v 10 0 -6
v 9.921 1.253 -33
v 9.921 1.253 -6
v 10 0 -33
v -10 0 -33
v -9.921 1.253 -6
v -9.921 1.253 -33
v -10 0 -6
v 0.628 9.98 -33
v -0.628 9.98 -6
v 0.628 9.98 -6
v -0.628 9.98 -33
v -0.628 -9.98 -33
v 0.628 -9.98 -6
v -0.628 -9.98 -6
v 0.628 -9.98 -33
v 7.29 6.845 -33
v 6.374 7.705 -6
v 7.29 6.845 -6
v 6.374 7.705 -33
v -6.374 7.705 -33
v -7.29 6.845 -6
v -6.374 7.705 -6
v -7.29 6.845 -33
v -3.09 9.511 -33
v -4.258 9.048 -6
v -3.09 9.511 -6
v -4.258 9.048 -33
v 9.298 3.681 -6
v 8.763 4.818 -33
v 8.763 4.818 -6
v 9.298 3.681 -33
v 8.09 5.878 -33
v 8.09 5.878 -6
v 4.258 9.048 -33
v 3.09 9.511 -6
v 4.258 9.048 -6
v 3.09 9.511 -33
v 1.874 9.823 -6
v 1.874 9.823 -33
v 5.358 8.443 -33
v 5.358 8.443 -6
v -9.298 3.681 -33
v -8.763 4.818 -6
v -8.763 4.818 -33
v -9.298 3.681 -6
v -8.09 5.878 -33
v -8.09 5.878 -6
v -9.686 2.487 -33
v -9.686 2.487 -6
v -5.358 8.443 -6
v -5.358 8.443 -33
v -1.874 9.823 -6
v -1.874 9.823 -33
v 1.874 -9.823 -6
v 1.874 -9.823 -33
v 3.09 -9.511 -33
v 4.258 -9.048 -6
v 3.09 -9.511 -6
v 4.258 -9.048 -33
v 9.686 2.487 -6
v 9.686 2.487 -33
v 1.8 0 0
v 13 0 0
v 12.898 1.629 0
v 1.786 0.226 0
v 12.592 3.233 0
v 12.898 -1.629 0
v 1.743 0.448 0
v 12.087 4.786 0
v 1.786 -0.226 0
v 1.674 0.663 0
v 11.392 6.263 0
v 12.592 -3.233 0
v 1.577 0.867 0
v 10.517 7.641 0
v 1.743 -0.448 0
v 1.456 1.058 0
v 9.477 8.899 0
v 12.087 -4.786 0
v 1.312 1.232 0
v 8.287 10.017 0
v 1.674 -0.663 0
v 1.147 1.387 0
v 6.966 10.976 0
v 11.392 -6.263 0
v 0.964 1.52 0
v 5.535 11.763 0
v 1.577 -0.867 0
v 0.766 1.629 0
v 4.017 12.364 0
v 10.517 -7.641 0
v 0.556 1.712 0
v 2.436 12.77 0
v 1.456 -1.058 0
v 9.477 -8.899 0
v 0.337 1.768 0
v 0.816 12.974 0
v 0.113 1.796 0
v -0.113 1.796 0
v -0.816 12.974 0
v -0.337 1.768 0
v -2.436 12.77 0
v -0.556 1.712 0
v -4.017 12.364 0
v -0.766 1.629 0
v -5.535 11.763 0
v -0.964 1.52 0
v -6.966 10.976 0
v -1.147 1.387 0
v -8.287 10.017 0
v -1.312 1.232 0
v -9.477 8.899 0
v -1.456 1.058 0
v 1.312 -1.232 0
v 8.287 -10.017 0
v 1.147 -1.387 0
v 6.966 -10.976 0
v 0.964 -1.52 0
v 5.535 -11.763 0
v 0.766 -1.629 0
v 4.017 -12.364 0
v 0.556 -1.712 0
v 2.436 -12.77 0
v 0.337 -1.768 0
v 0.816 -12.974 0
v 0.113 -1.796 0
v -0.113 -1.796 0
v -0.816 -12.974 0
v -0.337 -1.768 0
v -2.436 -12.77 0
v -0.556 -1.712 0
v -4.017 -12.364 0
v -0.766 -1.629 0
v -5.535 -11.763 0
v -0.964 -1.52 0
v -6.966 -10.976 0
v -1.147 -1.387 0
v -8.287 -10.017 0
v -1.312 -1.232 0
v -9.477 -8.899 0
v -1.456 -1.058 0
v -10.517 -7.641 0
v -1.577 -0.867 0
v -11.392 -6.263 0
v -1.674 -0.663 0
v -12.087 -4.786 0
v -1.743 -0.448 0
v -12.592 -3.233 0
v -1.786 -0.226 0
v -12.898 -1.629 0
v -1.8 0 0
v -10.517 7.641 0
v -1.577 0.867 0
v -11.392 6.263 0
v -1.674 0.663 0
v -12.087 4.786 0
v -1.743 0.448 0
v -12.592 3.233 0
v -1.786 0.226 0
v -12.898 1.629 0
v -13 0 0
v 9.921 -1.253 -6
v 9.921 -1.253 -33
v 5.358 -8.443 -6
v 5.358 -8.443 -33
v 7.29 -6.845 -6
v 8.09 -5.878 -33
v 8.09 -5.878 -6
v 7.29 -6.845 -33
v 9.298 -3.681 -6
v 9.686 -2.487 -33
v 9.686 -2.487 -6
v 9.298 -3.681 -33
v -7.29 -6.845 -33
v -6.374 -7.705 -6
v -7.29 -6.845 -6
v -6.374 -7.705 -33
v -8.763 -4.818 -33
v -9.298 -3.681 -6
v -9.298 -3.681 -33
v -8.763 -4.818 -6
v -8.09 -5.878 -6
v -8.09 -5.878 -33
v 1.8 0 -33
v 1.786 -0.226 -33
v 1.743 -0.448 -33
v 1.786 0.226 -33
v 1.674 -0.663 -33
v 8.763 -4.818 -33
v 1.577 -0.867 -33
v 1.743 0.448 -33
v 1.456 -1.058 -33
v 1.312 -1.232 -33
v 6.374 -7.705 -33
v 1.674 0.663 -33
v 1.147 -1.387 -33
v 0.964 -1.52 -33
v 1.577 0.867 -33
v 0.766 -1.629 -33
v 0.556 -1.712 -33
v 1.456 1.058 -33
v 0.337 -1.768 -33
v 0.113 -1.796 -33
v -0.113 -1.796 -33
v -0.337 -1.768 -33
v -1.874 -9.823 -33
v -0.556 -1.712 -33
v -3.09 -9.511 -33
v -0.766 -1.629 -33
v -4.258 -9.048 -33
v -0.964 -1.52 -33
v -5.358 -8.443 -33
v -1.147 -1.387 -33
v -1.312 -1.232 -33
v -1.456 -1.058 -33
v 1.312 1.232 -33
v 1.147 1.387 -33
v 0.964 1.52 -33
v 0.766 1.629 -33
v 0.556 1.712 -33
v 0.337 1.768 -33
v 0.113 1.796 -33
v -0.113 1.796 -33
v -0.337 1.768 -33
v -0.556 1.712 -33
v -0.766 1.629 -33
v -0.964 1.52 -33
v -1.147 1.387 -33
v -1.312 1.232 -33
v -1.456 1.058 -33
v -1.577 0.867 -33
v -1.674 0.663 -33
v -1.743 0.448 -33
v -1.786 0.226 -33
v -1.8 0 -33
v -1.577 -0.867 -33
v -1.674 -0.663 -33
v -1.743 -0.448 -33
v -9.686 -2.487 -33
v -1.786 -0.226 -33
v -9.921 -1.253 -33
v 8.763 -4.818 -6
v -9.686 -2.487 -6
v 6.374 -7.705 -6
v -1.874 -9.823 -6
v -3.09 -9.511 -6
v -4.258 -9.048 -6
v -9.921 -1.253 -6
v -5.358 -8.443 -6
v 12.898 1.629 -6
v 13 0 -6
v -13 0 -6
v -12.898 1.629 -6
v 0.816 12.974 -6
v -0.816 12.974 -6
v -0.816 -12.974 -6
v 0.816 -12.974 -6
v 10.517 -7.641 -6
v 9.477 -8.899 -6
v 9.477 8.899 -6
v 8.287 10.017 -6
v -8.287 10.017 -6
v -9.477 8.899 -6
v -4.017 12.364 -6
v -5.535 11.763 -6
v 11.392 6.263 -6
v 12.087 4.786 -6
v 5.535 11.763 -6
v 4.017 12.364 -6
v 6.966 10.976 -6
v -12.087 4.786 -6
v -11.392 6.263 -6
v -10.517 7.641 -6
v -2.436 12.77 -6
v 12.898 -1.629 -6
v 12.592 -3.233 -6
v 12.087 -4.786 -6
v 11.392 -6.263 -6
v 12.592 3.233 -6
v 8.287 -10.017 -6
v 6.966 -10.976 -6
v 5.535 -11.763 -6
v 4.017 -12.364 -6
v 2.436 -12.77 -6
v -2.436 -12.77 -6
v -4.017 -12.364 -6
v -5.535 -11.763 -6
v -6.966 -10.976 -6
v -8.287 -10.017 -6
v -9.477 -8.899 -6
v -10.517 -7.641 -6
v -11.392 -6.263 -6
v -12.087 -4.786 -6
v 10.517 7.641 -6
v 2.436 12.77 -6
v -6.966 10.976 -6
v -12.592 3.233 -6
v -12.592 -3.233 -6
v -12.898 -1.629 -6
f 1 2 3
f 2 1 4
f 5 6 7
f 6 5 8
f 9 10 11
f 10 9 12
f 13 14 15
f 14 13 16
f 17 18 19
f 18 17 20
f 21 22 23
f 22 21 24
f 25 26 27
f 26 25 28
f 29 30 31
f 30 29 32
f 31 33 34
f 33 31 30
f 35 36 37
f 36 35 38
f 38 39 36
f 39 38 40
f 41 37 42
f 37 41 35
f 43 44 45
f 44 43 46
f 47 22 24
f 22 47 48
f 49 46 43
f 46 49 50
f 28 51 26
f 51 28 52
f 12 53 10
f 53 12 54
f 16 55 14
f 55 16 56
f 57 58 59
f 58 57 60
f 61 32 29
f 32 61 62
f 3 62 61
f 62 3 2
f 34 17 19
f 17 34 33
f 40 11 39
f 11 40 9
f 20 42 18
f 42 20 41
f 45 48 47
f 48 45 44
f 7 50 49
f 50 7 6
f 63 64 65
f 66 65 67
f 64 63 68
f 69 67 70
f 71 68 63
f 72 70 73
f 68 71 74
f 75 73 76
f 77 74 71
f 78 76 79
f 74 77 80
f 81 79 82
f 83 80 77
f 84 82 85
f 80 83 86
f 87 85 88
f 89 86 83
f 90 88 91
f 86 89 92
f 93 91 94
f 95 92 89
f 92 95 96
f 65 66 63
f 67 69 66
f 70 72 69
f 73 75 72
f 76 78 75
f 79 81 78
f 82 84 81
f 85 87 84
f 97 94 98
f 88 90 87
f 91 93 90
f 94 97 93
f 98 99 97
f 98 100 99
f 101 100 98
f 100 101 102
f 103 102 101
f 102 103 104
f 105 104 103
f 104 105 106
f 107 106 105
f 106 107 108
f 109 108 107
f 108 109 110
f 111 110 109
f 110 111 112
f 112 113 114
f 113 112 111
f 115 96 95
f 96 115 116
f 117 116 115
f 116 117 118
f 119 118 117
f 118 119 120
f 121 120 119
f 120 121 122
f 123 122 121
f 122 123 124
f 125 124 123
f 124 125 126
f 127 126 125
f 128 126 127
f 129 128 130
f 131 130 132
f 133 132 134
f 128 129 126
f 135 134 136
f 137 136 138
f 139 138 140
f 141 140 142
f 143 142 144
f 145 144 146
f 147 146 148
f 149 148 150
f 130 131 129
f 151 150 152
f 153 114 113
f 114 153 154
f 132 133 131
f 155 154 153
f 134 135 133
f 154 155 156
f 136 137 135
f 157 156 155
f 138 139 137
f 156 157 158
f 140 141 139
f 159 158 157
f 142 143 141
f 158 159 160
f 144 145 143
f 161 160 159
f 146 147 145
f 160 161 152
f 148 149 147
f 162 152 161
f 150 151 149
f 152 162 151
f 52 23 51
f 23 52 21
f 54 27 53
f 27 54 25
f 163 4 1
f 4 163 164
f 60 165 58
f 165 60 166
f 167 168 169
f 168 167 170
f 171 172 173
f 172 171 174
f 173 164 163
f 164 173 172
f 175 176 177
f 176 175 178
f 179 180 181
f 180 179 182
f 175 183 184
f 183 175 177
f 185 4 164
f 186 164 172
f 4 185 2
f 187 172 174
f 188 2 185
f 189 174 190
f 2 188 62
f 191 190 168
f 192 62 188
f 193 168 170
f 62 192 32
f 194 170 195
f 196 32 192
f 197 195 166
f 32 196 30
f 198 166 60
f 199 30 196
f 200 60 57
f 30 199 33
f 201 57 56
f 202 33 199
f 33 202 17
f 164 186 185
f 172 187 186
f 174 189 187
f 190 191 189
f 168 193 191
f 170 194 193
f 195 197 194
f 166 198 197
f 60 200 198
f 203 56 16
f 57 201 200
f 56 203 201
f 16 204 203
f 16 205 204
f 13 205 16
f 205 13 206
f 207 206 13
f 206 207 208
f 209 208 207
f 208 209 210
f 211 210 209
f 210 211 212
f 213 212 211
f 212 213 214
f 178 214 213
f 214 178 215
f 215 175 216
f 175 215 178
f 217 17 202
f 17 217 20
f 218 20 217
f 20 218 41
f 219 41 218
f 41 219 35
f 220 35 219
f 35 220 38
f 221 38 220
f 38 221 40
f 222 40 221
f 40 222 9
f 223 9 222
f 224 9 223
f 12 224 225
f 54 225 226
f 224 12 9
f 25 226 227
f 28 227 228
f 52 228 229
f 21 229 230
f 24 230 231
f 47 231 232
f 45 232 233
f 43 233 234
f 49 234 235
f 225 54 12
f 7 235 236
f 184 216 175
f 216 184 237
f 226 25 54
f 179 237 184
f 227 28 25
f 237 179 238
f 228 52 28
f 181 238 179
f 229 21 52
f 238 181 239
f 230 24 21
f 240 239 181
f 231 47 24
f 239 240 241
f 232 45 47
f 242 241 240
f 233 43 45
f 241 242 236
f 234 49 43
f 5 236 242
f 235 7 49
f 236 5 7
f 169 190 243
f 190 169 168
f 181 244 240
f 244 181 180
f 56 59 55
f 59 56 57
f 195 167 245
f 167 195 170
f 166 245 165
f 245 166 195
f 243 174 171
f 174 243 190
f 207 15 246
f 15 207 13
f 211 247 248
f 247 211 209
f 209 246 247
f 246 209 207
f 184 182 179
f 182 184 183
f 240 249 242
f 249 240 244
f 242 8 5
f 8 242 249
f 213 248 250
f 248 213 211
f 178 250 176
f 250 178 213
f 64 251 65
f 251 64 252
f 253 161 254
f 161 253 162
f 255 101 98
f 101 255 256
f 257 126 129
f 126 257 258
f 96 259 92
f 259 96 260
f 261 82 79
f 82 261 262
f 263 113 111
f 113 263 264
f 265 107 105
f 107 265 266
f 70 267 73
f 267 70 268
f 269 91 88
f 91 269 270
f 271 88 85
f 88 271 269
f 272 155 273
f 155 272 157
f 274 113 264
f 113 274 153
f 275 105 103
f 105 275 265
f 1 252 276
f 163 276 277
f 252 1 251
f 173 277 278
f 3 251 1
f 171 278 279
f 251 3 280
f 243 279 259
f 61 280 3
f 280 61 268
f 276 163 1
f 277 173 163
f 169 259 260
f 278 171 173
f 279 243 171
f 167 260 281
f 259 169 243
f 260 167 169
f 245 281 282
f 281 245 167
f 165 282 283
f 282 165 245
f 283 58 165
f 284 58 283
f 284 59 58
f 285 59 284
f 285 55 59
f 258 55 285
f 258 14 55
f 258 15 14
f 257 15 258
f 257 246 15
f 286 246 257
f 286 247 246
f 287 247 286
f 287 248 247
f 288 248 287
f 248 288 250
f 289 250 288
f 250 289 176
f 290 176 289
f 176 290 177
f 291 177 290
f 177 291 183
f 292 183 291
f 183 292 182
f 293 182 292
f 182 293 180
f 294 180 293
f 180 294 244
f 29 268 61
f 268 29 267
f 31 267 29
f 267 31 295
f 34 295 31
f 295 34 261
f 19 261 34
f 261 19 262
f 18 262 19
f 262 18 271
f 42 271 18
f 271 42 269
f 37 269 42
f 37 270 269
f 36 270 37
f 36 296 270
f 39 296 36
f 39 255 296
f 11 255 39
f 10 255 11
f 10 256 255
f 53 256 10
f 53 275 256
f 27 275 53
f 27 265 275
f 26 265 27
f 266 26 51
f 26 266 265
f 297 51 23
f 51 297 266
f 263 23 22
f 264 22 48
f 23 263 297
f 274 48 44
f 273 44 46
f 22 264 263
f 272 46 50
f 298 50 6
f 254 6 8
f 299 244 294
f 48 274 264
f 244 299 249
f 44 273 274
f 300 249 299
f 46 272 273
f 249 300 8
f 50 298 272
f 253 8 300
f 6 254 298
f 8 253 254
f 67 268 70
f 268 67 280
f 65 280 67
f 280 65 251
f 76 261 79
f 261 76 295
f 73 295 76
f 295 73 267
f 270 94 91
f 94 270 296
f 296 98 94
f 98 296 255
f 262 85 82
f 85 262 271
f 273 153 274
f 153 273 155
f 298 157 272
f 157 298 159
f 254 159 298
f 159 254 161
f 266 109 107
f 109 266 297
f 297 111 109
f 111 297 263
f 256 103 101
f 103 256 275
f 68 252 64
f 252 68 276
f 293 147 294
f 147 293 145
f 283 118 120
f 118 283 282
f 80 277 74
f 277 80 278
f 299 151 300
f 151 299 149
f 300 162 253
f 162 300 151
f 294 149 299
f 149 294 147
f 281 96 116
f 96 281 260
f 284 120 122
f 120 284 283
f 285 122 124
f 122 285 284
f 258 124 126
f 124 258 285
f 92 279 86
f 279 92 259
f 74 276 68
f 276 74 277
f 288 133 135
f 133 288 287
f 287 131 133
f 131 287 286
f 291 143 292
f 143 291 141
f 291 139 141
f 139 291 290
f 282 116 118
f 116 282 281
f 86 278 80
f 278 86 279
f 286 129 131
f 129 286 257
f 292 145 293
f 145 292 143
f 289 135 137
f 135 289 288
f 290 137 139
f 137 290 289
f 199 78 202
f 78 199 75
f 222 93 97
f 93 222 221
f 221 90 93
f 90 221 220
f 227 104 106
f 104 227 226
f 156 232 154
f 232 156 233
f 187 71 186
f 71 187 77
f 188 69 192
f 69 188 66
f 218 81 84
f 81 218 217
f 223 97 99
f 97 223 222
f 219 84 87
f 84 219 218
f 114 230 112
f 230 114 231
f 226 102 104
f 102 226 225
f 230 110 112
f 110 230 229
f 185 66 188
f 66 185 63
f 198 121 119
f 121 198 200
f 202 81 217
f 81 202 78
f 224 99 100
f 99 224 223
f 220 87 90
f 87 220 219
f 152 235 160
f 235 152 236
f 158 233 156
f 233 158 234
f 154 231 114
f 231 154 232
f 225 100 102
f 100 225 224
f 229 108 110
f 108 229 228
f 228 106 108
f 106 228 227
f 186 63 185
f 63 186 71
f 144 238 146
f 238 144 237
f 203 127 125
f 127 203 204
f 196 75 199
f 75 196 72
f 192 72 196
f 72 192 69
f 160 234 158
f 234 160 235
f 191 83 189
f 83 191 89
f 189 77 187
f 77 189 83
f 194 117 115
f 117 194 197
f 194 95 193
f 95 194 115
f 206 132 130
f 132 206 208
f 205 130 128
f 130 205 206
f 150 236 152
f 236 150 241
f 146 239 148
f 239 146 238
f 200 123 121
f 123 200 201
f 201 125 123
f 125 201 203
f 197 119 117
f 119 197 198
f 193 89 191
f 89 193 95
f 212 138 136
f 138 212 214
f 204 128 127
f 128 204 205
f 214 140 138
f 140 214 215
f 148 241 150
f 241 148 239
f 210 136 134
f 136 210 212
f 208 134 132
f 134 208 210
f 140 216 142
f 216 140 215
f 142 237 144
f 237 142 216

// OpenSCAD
$fn = 50;


difference() {
	union() {
		translate(v = [0, 0, -33.0000000000]) {
			cylinder(h = 33, r = 10.0000000000);
		}
		translate(v = [0, 0, -6.0000000000]) {
			cylinder(h = 6, r = 13.0000000000);
		}
	}
	union() {
		#translate(v = [0, 0, -33]) {
			cylinder(h = 33, r = 1.8000000000);
		}
	}
}
